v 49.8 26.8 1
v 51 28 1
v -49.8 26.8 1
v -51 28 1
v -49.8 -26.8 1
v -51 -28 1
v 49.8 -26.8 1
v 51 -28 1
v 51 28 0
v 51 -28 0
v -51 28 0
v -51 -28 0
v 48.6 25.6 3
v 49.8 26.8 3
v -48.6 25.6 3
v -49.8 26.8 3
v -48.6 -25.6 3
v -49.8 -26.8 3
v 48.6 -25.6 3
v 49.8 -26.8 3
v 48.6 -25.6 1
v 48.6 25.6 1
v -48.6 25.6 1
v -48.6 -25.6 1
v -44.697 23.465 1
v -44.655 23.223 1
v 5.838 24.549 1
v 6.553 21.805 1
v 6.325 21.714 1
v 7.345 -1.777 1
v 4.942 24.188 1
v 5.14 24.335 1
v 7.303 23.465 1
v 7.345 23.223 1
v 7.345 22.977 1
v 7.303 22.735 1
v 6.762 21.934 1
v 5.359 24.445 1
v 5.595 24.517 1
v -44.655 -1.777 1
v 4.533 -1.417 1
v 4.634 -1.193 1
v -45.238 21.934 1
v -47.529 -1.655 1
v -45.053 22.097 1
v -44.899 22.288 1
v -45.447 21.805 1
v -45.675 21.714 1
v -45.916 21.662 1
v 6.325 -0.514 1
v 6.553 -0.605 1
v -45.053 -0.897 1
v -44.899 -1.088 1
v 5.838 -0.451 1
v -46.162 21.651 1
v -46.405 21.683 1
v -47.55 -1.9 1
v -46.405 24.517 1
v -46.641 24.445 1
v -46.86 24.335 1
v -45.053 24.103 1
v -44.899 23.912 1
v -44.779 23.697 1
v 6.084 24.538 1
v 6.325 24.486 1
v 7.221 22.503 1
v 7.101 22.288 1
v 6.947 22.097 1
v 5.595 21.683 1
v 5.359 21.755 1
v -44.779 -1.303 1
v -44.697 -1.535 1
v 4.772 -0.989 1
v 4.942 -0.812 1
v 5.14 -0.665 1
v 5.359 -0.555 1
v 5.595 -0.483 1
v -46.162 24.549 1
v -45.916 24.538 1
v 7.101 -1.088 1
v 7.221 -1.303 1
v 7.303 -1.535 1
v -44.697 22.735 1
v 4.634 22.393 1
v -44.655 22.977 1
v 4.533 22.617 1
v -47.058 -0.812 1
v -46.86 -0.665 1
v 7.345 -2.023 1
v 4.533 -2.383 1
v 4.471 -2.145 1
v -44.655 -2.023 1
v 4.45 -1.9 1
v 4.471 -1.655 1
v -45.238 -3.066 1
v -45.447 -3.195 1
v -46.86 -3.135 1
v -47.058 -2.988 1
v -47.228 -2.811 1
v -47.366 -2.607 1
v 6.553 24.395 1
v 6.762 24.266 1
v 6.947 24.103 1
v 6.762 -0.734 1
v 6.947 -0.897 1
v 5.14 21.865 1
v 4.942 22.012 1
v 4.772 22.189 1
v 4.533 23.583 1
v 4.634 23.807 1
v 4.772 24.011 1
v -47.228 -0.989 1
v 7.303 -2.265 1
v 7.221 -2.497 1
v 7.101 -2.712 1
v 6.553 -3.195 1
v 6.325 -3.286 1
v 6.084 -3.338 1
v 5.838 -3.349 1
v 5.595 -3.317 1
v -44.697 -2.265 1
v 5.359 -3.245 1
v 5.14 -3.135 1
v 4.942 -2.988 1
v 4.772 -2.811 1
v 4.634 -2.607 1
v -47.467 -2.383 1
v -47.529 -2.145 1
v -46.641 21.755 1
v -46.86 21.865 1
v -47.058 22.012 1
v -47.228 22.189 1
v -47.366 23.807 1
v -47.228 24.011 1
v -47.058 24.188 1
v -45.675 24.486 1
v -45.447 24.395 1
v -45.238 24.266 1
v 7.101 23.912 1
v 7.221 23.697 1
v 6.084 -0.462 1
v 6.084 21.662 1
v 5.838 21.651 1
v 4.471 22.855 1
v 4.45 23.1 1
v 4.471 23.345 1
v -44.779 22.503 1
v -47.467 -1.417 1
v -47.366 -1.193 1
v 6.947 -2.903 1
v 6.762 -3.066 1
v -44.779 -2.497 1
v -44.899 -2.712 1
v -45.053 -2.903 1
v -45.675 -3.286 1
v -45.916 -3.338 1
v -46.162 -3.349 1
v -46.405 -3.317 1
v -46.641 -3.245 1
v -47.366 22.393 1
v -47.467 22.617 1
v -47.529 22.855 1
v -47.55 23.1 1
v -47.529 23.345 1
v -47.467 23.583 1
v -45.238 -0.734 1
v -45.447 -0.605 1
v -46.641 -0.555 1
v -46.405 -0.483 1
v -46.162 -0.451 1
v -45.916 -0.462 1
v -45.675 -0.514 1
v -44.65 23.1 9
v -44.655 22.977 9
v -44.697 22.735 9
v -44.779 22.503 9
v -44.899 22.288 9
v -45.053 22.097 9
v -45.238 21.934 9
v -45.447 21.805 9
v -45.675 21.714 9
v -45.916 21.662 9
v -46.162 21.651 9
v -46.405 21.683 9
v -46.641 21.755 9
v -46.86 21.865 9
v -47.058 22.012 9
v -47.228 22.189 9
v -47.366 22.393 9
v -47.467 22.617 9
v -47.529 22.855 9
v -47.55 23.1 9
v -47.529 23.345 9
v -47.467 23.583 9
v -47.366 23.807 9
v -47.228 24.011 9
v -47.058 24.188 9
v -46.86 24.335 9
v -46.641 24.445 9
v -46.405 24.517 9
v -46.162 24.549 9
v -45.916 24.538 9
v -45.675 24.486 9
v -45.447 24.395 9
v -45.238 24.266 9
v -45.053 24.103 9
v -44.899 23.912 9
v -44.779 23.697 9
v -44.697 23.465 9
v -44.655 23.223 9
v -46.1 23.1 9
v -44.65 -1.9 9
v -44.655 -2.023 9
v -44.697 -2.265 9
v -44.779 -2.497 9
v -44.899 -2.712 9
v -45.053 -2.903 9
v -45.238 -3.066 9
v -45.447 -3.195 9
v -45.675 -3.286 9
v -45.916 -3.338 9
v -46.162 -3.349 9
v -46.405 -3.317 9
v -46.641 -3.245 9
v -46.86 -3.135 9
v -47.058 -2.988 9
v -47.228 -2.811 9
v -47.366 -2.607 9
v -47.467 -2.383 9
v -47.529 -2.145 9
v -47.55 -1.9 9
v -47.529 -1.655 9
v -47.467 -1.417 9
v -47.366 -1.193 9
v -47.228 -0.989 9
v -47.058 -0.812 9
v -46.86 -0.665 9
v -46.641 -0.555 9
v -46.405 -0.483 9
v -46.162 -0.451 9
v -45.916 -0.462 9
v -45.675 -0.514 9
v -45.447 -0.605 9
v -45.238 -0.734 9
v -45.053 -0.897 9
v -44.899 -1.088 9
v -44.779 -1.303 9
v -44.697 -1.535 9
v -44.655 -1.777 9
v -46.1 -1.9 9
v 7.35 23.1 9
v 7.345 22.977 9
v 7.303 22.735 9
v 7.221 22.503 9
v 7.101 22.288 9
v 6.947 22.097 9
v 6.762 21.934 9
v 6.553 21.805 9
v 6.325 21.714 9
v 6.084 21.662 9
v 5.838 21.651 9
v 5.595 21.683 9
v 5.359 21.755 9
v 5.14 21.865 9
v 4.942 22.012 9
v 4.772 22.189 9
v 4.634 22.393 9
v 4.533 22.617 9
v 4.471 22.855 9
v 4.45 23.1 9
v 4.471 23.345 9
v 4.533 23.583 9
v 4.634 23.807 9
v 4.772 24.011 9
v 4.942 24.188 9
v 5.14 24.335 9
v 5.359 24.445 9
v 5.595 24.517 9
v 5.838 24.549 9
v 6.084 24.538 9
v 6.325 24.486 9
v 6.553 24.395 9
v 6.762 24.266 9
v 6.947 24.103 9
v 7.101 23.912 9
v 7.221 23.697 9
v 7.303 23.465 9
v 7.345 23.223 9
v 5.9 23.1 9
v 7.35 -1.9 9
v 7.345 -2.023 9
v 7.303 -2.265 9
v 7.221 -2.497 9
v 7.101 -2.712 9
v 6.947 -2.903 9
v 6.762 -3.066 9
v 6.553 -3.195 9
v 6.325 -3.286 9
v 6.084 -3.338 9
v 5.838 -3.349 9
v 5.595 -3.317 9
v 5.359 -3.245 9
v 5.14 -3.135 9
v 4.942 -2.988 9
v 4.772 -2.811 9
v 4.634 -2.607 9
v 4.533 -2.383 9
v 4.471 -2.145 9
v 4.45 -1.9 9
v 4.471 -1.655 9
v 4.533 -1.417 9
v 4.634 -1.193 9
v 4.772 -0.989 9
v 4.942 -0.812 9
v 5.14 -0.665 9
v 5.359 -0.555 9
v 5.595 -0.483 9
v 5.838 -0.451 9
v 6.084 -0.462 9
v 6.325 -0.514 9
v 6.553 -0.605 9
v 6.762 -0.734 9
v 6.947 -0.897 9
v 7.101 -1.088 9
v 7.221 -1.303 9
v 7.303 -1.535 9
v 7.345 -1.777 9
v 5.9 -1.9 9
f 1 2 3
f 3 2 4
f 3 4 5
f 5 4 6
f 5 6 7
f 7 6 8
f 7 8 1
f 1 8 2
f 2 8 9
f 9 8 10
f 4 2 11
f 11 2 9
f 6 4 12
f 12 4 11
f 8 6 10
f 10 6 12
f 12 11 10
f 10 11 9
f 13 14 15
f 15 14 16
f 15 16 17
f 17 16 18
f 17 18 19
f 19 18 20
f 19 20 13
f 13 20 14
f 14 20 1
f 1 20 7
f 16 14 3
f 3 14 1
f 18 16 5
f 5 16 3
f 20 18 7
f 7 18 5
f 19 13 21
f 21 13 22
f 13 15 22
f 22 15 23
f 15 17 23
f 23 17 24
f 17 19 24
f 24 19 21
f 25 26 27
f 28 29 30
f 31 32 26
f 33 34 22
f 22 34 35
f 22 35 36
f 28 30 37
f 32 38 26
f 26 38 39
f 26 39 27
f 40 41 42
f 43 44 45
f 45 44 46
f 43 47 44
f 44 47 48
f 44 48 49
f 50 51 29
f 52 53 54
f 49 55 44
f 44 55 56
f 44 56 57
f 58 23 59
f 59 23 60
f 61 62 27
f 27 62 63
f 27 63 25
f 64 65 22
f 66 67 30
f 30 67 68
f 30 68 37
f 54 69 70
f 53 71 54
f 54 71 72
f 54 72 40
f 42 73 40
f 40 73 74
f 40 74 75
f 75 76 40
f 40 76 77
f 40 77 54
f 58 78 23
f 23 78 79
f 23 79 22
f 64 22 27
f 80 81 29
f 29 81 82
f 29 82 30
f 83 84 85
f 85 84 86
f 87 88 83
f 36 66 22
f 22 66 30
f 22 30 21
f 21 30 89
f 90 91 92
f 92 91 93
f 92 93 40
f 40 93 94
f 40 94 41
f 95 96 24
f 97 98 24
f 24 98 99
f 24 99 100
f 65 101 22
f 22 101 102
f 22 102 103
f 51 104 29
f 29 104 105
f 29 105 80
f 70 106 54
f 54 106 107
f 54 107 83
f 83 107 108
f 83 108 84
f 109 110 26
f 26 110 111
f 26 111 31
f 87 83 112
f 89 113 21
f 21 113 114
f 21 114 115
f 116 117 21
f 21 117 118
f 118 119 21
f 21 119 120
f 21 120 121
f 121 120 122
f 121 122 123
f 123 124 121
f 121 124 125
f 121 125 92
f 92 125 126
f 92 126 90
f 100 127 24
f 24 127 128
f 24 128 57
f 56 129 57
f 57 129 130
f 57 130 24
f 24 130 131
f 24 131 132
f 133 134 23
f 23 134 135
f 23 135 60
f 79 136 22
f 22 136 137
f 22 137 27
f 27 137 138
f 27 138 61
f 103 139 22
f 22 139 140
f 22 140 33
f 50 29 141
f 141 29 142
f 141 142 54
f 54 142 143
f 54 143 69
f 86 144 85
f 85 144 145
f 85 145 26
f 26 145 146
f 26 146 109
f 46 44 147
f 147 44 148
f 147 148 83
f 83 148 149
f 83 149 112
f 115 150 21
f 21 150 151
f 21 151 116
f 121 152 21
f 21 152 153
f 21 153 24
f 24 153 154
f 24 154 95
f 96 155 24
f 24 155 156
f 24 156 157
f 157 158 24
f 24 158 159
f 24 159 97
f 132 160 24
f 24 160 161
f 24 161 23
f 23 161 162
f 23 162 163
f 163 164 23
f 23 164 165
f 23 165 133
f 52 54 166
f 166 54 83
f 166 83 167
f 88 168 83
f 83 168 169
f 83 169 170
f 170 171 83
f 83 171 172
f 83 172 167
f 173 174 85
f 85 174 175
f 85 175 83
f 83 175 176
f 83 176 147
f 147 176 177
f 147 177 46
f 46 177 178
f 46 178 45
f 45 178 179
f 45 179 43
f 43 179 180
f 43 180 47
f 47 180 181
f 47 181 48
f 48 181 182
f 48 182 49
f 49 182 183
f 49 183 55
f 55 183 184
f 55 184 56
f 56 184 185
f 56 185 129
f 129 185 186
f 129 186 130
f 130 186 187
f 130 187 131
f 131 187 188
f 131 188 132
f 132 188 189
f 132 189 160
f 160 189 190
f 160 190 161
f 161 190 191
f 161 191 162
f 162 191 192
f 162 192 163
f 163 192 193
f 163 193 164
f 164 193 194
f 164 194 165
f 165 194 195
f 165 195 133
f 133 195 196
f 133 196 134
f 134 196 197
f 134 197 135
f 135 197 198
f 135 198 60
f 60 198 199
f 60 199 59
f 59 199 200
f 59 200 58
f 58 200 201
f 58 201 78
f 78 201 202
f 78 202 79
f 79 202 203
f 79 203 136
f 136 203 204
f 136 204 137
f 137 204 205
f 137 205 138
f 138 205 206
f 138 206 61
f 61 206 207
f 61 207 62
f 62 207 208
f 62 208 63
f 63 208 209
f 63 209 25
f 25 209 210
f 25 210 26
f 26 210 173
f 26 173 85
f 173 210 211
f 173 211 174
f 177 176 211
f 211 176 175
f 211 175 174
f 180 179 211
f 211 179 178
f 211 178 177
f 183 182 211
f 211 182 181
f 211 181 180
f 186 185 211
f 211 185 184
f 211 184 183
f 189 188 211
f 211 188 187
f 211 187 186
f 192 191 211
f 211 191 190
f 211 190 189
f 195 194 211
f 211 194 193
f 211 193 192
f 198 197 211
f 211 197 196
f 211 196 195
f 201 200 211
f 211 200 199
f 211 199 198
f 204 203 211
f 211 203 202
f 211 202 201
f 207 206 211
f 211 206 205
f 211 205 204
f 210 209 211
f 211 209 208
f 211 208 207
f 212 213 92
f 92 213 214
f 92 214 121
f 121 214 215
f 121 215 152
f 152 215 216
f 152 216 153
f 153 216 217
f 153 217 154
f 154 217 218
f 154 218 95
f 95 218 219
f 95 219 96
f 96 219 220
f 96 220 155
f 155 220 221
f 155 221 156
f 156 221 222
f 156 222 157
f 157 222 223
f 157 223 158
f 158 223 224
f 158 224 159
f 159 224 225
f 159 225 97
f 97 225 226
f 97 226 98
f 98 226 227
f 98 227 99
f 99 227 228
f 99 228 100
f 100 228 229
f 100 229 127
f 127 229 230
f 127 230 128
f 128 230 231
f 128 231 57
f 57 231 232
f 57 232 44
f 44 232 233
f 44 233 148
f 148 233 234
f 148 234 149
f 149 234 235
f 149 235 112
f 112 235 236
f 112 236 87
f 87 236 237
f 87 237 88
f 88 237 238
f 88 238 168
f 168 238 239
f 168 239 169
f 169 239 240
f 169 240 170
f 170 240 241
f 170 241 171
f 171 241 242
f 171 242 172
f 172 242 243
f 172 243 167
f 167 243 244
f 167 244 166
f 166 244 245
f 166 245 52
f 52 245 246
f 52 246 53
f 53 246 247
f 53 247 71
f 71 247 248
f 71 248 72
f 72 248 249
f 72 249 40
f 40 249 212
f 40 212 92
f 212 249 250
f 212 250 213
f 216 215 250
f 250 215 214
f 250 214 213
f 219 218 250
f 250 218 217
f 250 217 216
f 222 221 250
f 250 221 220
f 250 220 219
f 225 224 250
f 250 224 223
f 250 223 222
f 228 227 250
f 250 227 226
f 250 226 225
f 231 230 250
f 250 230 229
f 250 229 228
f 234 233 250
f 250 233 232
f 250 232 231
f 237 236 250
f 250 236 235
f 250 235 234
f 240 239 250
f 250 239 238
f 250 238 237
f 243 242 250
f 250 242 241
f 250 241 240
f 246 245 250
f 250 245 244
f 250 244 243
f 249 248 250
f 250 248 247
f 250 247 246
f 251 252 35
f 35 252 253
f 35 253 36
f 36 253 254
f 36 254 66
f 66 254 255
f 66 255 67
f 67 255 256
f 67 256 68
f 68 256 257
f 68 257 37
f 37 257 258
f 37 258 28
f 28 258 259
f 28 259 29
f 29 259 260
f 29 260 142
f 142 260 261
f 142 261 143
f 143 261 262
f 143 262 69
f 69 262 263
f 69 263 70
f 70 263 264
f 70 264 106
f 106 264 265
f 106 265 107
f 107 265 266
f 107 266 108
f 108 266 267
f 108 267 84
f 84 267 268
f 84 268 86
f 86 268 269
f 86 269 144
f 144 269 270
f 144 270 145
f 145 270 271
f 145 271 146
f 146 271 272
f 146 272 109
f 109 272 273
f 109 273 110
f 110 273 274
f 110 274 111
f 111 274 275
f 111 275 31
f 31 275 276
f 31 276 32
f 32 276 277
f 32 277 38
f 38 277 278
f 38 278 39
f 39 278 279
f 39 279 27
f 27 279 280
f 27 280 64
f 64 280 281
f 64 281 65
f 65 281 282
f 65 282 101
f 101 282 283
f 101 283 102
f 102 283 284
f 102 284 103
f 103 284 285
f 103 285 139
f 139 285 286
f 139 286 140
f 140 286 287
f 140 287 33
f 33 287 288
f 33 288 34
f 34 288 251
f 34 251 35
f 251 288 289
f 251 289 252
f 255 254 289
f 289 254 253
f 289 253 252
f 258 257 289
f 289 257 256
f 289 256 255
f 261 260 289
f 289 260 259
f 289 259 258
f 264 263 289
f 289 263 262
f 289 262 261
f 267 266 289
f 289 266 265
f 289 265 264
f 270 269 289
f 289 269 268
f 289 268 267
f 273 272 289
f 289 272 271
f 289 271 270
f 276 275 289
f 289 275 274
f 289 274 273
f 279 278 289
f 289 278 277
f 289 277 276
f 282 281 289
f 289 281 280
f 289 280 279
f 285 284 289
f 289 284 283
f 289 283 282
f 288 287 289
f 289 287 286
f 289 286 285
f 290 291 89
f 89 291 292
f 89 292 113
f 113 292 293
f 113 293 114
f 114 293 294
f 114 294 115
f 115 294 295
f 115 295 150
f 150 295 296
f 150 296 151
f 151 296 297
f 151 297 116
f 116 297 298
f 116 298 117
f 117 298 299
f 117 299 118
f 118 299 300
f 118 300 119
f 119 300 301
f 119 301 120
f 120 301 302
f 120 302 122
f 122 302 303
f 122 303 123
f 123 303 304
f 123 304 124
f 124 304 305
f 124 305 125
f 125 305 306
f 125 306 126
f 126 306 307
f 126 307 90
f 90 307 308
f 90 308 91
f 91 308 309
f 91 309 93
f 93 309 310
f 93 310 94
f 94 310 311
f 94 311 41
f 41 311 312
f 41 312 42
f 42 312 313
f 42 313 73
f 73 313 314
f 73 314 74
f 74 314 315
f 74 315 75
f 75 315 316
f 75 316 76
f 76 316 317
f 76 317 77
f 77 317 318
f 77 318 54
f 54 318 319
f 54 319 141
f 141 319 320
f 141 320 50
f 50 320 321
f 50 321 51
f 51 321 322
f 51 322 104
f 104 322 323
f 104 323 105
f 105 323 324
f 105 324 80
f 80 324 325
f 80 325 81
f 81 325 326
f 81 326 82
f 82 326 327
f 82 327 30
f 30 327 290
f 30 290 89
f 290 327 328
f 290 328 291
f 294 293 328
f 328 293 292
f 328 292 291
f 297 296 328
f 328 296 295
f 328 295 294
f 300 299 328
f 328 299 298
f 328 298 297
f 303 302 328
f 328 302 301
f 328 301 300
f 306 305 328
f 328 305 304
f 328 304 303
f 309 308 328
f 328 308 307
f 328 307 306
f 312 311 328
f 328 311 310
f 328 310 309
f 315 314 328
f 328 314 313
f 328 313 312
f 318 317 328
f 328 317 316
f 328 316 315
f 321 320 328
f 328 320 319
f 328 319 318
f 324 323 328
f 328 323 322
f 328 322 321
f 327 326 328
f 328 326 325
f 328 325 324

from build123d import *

# Parameters (mm, degrees)
SKETCH1_W        = 102
SKETCH1_H        = 56
PANEL_DEPTH      = 1
SKETCH2_W        = 99.6
SKETCH2_H        = 53.6
SKETCH2_W_2      = 97.2
SKETCH2_H_2      = 51.2
MOUNTS_DEPTH     = 2
SKETCH3_R        = 1.45
ESP_MOUNTS_DEPTH = 8


with BuildPart() as part:
    # Sketch1 → PANEL (new body)
    with BuildSketch(Plane.XY):
        Rectangle(SKETCH1_W, SKETCH1_H)
    extrude(amount=PANEL_DEPTH)

    # Sketch2 → MOUNTS (add)
    with BuildSketch(Plane.XY.offset(1)):
        Rectangle(SKETCH2_W, SKETCH2_H)
        Rectangle(SKETCH2_W_2, SKETCH2_H_2, mode=Mode.SUBTRACT)
    extrude(amount=MOUNTS_DEPTH)

    # Sketch3 → ESP_MOUNTS (add)
    with BuildSketch(Plane.XY.offset(1)):
        with Locations(Location((-46.1, 23.1, 0), (0, 0, 180))):
            Circle(SKETCH3_R)
        with Locations(Location((-46.1, -1.9, 0), (0, 0, 180))):
            Circle(SKETCH3_R)
        with Locations(Location((5.9, 23.1, 0), (0, 0, 180))):
            Circle(SKETCH3_R)
        with Locations(Location((5.9, -1.9, 0), (0, 0, 180))):
            Circle(SKETCH3_R)
    extrude(amount=ESP_MOUNTS_DEPTH)


solid = part.part
